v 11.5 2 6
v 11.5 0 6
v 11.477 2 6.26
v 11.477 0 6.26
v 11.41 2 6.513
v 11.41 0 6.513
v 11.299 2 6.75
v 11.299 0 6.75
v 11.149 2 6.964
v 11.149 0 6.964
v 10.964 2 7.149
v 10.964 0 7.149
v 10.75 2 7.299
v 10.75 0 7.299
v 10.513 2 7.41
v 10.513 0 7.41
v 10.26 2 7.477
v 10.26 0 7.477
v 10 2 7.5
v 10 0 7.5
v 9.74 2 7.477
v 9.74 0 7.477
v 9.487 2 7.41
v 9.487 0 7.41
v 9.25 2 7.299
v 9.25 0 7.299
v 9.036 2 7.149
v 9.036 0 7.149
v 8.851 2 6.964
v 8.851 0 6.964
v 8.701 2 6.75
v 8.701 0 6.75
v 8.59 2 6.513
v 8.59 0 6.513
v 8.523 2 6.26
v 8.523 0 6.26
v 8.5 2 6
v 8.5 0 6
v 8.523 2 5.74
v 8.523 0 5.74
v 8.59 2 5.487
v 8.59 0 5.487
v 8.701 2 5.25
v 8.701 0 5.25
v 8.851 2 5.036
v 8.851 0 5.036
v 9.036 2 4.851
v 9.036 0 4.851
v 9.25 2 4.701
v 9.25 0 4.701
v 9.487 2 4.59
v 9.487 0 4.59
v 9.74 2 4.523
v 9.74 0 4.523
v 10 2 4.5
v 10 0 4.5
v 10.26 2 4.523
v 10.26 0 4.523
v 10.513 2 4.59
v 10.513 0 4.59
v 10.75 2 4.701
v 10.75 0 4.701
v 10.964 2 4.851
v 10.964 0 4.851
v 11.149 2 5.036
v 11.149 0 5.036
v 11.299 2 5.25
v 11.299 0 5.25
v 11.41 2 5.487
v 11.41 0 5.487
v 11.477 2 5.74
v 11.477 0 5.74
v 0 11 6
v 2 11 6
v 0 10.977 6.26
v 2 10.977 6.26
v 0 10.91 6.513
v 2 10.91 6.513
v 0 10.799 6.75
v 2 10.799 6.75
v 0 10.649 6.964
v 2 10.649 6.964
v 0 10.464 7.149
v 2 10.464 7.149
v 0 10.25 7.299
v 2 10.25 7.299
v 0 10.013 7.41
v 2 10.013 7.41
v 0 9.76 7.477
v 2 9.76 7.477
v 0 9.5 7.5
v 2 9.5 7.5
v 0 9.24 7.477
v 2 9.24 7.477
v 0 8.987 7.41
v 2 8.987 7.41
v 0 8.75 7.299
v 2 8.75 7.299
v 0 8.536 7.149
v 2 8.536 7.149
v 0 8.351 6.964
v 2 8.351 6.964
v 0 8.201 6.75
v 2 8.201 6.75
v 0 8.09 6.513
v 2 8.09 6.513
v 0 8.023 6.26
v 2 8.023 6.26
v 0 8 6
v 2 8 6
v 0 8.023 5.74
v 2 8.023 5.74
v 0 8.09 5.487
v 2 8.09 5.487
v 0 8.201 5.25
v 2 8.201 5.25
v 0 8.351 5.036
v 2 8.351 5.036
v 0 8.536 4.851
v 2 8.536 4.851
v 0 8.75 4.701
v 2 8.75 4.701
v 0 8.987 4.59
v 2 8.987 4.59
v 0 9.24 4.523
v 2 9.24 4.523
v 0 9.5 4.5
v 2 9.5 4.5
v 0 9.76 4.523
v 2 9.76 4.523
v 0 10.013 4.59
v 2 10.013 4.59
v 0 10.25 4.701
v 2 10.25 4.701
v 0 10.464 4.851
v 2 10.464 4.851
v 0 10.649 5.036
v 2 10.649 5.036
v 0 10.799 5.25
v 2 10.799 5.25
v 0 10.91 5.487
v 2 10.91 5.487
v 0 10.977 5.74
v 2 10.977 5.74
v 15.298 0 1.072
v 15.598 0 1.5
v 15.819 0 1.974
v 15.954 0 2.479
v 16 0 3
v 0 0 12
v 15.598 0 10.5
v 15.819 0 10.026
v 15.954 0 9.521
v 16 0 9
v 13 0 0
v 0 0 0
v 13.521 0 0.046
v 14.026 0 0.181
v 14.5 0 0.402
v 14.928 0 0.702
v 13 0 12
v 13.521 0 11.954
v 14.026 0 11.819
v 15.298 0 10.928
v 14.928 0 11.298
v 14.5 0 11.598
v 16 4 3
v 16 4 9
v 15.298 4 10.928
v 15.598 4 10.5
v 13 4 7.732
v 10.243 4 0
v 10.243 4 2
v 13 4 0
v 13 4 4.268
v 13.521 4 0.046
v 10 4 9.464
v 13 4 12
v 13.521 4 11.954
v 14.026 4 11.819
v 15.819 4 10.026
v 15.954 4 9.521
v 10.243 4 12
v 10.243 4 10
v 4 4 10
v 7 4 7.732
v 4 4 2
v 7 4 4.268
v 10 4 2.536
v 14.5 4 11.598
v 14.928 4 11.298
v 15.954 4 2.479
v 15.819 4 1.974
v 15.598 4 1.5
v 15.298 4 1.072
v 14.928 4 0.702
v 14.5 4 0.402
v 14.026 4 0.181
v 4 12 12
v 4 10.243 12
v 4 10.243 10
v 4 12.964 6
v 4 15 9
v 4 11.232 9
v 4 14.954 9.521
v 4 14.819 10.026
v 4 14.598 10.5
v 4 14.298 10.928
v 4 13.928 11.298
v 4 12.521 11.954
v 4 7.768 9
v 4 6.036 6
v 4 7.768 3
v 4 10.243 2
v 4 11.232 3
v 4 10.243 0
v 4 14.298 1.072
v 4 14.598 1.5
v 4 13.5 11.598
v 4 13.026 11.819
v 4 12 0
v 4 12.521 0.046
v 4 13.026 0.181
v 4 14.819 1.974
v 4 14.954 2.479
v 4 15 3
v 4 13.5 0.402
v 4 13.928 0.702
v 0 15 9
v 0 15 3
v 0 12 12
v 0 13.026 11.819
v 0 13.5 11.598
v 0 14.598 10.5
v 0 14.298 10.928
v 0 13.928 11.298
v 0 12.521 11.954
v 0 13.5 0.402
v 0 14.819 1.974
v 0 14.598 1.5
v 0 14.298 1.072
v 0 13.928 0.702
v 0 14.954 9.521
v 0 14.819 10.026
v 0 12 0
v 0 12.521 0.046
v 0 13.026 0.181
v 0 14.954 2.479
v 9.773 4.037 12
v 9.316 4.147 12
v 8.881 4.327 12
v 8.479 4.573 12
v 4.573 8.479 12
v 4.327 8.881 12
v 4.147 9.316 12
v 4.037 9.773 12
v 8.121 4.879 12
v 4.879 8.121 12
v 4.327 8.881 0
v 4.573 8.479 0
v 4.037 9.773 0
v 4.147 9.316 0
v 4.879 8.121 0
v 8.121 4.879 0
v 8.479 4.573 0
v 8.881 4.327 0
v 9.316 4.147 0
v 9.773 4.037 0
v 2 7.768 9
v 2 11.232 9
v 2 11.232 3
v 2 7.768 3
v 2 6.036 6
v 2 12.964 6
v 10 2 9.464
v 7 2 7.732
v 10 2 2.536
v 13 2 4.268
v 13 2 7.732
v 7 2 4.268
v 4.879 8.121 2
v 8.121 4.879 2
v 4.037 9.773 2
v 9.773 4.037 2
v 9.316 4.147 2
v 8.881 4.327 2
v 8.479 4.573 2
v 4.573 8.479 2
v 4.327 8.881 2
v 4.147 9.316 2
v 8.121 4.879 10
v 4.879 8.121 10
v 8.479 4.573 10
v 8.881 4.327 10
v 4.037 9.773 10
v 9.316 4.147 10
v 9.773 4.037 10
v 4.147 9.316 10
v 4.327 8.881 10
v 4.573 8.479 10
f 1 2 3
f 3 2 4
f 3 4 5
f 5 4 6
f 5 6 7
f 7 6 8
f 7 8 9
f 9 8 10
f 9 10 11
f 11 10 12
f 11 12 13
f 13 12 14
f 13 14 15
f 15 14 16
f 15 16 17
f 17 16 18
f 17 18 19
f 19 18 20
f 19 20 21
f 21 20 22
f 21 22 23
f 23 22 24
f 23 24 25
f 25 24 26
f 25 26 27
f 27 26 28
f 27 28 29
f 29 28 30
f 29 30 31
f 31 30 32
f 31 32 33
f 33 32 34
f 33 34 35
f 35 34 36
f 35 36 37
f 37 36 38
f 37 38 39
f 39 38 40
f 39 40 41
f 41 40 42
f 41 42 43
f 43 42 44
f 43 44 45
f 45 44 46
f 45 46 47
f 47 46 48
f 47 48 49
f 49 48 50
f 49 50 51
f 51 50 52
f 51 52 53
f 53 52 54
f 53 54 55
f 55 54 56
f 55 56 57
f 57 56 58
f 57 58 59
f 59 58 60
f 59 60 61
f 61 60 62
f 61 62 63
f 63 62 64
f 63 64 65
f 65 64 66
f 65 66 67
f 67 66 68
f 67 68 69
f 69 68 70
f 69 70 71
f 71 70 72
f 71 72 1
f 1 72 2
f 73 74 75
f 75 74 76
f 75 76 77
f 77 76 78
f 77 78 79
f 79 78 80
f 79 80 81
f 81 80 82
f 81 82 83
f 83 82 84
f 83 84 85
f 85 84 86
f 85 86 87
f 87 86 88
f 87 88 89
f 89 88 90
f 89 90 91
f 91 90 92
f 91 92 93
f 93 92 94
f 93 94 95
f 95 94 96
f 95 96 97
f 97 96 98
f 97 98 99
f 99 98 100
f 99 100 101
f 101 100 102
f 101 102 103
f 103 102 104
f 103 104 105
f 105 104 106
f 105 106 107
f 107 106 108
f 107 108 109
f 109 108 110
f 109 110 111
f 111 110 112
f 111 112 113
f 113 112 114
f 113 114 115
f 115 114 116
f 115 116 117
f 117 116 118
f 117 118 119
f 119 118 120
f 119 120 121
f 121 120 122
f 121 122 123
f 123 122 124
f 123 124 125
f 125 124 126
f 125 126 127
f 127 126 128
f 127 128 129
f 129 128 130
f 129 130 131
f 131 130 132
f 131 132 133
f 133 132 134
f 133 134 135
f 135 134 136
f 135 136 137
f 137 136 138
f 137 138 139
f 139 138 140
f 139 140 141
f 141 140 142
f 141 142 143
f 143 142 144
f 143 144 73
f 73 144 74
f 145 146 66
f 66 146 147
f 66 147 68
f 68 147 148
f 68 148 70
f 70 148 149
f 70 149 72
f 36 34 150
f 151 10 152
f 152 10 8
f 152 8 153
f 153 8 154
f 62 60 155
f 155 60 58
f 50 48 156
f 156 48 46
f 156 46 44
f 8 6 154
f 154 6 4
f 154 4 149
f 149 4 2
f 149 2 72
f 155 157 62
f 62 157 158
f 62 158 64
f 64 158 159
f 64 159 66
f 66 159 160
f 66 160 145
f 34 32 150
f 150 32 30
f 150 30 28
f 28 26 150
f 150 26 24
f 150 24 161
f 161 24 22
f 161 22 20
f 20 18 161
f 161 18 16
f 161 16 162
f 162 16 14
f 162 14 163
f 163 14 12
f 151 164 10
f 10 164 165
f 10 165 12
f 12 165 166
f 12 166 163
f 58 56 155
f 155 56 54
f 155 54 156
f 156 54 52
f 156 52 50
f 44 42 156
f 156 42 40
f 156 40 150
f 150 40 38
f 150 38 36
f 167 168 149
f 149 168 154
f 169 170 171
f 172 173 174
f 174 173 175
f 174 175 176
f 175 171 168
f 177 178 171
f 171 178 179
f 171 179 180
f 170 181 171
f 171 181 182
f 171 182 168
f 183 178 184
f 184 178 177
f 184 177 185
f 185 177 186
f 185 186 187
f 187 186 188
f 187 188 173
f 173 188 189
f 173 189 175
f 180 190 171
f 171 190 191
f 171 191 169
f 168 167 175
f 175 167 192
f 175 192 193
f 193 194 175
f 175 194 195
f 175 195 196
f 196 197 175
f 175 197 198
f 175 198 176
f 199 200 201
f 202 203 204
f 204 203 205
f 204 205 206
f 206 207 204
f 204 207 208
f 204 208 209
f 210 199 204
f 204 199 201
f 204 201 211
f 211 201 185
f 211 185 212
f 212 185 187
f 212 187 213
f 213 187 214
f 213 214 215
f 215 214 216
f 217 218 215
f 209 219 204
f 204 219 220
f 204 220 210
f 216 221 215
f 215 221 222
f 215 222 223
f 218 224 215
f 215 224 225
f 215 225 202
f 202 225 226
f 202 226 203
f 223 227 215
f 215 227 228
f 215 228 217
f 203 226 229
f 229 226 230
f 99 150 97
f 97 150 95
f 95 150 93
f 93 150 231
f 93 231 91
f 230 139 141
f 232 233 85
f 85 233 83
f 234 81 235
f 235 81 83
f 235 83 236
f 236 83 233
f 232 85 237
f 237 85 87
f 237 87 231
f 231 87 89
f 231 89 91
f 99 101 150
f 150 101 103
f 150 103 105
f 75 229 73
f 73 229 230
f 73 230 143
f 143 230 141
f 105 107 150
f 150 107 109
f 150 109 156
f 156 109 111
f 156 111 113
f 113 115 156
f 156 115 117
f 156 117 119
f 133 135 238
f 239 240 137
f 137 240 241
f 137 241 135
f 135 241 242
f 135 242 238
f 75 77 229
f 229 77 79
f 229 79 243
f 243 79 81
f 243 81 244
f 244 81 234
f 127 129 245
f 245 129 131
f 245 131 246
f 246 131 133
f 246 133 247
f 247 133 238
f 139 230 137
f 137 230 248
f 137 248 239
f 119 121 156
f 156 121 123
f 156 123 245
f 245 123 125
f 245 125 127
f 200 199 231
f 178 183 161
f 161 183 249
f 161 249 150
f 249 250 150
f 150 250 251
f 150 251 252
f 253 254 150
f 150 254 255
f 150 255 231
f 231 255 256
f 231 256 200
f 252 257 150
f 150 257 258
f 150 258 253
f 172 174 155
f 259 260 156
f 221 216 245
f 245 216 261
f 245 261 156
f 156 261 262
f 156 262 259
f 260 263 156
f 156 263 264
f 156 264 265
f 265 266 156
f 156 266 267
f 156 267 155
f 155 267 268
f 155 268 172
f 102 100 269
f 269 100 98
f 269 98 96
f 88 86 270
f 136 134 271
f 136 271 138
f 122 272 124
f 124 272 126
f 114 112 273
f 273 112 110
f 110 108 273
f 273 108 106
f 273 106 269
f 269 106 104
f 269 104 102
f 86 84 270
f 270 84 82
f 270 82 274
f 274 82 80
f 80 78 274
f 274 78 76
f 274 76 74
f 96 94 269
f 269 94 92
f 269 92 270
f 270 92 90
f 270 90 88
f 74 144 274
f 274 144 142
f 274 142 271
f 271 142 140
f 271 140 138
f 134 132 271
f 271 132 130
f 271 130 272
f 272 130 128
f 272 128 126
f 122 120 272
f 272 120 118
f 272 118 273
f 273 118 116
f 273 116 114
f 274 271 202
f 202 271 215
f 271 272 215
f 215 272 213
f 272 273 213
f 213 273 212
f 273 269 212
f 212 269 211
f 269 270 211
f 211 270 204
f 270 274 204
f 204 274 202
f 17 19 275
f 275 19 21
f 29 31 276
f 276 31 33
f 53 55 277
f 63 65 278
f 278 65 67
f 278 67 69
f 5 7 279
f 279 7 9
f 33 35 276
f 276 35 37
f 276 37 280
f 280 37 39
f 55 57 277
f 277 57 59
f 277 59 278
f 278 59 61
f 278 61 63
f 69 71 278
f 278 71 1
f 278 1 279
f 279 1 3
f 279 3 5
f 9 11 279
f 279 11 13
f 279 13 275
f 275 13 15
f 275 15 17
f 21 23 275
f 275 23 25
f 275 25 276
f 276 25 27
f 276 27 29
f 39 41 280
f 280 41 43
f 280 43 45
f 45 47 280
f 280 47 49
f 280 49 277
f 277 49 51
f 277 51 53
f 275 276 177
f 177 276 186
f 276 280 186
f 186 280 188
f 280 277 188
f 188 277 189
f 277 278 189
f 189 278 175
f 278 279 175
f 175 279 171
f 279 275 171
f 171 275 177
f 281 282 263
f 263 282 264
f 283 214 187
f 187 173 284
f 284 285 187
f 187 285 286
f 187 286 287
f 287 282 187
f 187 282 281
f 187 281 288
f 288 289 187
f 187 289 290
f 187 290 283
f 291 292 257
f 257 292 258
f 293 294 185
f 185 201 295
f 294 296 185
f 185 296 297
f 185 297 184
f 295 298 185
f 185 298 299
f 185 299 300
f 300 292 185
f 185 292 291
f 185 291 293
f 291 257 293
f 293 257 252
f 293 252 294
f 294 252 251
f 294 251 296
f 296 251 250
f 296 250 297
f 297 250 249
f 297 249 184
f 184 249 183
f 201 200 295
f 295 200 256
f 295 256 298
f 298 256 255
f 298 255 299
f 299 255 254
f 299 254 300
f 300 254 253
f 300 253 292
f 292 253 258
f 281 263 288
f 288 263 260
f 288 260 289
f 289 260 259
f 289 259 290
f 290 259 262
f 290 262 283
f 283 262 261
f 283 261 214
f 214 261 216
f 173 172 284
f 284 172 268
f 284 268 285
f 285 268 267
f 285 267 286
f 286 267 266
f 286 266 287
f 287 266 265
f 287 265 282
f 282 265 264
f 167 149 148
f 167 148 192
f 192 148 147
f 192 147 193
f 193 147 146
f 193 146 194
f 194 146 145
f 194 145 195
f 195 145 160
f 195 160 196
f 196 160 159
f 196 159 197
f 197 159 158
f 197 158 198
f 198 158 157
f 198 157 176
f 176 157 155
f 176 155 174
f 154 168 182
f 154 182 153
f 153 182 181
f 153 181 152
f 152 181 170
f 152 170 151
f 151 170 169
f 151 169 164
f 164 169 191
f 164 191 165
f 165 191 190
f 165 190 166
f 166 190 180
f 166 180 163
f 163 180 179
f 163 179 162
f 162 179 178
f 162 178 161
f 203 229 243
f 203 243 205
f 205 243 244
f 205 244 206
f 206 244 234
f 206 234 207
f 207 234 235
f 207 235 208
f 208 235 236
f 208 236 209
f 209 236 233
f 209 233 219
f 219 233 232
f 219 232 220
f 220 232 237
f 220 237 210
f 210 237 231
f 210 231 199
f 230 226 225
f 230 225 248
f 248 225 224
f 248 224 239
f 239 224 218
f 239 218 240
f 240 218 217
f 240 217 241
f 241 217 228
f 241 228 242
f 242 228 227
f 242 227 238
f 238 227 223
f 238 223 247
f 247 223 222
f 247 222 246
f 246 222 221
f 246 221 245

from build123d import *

# Parameters (mm, degrees)
BOSS_EXTRUDE1_DEPTH = 12
SKETCH2_R           = 1.5
CUT_EXTRUDE1_DEPTH  = 23.649503306
CUT_EXTRUDE2_DEPTH  = 2
SKETCH4_R           = 1.5
CUT_EXTRUDE3_DEPTH  = 26
CUT_EXTRUDE4_DEPTH  = 2
BOSS_EXTRUDE2_DEPTH = 2
BOSS_EXTRUDE3_DEPTH = 2
FILLET1_R           = 3


with BuildPart() as part:
    # Sketch1 → Boss-Extrude1 (new body)
    with BuildSketch(Plane.XY):
        Polygon((0, 0), (0, 15), (4, 15), (4, 4), (16, 4), (16, 0), align=None)
    extrude(amount=BOSS_EXTRUDE1_DEPTH)

    # Sketch2 → Cut-Extrude1 (cut, through all)
    with BuildSketch(Plane(origin=(4, 0, 0), x_dir=(0, 0, -1), z_dir=(1, 0, 0))):
        with Locations(Location((-6, 9.5, 0), (0, 0, 90))):
            Circle(SKETCH2_R)
    extrude(amount=-CUT_EXTRUDE1_DEPTH, mode=Mode.SUBTRACT)

    # Sketch3 → Cut-Extrude2 (cut)
    with BuildSketch(Plane(origin=(4, 0, 0), x_dir=(0, 0, -1), z_dir=(1, 0, 0))):
        Polygon((-6, 12.964101615), (-9, 11.232050808), (-9, 7.767949192), (-6, 6.035898385), (-3, 7.767949192), (-3, 11.232050808), align=None)
    extrude(amount=-CUT_EXTRUDE2_DEPTH, mode=Mode.SUBTRACT)

    # Sketch4 → Cut-Extrude3 (cut, through all)
    with BuildSketch(Plane.XZ):
        with Locations((10, 6)):
            Circle(SKETCH4_R)
    extrude(amount=-CUT_EXTRUDE3_DEPTH, mode=Mode.SUBTRACT)

    # Sketch5 → Cut-Extrude4 (cut)
    with BuildSketch(Plane(origin=(0, 4, 0), x_dir=(1, 0, 0), z_dir=(0, 1, 0))):
        Polygon((10, -9.464101615), (13, -7.732050808), (13, -4.267949192), (10, -2.535898385), (7, -4.267949192), (7, -7.732050808), align=None)
    extrude(amount=-CUT_EXTRUDE4_DEPTH, mode=Mode.SUBTRACT)

    # Sketch6 → Boss-Extrude2 (add)
    with BuildSketch(Plane(origin=(0, 0, 0), x_dir=(-1, 0, 0), z_dir=(0, 0, -1))):
        Polygon((-4, 4), (-4, 9), (-9, 4), align=None)
    extrude(amount=-BOSS_EXTRUDE2_DEPTH)

    # Sketch7 → Boss-Extrude3 (add)
    with BuildSketch(Plane.XY.offset(12)):
        Polygon((4, 9), (4, 4), (9, 4), align=None)
    extrude(amount=-BOSS_EXTRUDE3_DEPTH)

    # Fillet1
    fillet1_edges = [part.edges().sort_by_distance(p)[0] for p in [
        (2, 15, 12),
        (2, 15, 0),
        (16, 2, 12),
        (9, 4, 1),
        (4, 9, 1),
        (16, 2, 0),
        (9, 4, 11),
        (4, 9, 11),
    ]]
    fillet(fillet1_edges, radius=FILLET1_R)


solid = part.part
